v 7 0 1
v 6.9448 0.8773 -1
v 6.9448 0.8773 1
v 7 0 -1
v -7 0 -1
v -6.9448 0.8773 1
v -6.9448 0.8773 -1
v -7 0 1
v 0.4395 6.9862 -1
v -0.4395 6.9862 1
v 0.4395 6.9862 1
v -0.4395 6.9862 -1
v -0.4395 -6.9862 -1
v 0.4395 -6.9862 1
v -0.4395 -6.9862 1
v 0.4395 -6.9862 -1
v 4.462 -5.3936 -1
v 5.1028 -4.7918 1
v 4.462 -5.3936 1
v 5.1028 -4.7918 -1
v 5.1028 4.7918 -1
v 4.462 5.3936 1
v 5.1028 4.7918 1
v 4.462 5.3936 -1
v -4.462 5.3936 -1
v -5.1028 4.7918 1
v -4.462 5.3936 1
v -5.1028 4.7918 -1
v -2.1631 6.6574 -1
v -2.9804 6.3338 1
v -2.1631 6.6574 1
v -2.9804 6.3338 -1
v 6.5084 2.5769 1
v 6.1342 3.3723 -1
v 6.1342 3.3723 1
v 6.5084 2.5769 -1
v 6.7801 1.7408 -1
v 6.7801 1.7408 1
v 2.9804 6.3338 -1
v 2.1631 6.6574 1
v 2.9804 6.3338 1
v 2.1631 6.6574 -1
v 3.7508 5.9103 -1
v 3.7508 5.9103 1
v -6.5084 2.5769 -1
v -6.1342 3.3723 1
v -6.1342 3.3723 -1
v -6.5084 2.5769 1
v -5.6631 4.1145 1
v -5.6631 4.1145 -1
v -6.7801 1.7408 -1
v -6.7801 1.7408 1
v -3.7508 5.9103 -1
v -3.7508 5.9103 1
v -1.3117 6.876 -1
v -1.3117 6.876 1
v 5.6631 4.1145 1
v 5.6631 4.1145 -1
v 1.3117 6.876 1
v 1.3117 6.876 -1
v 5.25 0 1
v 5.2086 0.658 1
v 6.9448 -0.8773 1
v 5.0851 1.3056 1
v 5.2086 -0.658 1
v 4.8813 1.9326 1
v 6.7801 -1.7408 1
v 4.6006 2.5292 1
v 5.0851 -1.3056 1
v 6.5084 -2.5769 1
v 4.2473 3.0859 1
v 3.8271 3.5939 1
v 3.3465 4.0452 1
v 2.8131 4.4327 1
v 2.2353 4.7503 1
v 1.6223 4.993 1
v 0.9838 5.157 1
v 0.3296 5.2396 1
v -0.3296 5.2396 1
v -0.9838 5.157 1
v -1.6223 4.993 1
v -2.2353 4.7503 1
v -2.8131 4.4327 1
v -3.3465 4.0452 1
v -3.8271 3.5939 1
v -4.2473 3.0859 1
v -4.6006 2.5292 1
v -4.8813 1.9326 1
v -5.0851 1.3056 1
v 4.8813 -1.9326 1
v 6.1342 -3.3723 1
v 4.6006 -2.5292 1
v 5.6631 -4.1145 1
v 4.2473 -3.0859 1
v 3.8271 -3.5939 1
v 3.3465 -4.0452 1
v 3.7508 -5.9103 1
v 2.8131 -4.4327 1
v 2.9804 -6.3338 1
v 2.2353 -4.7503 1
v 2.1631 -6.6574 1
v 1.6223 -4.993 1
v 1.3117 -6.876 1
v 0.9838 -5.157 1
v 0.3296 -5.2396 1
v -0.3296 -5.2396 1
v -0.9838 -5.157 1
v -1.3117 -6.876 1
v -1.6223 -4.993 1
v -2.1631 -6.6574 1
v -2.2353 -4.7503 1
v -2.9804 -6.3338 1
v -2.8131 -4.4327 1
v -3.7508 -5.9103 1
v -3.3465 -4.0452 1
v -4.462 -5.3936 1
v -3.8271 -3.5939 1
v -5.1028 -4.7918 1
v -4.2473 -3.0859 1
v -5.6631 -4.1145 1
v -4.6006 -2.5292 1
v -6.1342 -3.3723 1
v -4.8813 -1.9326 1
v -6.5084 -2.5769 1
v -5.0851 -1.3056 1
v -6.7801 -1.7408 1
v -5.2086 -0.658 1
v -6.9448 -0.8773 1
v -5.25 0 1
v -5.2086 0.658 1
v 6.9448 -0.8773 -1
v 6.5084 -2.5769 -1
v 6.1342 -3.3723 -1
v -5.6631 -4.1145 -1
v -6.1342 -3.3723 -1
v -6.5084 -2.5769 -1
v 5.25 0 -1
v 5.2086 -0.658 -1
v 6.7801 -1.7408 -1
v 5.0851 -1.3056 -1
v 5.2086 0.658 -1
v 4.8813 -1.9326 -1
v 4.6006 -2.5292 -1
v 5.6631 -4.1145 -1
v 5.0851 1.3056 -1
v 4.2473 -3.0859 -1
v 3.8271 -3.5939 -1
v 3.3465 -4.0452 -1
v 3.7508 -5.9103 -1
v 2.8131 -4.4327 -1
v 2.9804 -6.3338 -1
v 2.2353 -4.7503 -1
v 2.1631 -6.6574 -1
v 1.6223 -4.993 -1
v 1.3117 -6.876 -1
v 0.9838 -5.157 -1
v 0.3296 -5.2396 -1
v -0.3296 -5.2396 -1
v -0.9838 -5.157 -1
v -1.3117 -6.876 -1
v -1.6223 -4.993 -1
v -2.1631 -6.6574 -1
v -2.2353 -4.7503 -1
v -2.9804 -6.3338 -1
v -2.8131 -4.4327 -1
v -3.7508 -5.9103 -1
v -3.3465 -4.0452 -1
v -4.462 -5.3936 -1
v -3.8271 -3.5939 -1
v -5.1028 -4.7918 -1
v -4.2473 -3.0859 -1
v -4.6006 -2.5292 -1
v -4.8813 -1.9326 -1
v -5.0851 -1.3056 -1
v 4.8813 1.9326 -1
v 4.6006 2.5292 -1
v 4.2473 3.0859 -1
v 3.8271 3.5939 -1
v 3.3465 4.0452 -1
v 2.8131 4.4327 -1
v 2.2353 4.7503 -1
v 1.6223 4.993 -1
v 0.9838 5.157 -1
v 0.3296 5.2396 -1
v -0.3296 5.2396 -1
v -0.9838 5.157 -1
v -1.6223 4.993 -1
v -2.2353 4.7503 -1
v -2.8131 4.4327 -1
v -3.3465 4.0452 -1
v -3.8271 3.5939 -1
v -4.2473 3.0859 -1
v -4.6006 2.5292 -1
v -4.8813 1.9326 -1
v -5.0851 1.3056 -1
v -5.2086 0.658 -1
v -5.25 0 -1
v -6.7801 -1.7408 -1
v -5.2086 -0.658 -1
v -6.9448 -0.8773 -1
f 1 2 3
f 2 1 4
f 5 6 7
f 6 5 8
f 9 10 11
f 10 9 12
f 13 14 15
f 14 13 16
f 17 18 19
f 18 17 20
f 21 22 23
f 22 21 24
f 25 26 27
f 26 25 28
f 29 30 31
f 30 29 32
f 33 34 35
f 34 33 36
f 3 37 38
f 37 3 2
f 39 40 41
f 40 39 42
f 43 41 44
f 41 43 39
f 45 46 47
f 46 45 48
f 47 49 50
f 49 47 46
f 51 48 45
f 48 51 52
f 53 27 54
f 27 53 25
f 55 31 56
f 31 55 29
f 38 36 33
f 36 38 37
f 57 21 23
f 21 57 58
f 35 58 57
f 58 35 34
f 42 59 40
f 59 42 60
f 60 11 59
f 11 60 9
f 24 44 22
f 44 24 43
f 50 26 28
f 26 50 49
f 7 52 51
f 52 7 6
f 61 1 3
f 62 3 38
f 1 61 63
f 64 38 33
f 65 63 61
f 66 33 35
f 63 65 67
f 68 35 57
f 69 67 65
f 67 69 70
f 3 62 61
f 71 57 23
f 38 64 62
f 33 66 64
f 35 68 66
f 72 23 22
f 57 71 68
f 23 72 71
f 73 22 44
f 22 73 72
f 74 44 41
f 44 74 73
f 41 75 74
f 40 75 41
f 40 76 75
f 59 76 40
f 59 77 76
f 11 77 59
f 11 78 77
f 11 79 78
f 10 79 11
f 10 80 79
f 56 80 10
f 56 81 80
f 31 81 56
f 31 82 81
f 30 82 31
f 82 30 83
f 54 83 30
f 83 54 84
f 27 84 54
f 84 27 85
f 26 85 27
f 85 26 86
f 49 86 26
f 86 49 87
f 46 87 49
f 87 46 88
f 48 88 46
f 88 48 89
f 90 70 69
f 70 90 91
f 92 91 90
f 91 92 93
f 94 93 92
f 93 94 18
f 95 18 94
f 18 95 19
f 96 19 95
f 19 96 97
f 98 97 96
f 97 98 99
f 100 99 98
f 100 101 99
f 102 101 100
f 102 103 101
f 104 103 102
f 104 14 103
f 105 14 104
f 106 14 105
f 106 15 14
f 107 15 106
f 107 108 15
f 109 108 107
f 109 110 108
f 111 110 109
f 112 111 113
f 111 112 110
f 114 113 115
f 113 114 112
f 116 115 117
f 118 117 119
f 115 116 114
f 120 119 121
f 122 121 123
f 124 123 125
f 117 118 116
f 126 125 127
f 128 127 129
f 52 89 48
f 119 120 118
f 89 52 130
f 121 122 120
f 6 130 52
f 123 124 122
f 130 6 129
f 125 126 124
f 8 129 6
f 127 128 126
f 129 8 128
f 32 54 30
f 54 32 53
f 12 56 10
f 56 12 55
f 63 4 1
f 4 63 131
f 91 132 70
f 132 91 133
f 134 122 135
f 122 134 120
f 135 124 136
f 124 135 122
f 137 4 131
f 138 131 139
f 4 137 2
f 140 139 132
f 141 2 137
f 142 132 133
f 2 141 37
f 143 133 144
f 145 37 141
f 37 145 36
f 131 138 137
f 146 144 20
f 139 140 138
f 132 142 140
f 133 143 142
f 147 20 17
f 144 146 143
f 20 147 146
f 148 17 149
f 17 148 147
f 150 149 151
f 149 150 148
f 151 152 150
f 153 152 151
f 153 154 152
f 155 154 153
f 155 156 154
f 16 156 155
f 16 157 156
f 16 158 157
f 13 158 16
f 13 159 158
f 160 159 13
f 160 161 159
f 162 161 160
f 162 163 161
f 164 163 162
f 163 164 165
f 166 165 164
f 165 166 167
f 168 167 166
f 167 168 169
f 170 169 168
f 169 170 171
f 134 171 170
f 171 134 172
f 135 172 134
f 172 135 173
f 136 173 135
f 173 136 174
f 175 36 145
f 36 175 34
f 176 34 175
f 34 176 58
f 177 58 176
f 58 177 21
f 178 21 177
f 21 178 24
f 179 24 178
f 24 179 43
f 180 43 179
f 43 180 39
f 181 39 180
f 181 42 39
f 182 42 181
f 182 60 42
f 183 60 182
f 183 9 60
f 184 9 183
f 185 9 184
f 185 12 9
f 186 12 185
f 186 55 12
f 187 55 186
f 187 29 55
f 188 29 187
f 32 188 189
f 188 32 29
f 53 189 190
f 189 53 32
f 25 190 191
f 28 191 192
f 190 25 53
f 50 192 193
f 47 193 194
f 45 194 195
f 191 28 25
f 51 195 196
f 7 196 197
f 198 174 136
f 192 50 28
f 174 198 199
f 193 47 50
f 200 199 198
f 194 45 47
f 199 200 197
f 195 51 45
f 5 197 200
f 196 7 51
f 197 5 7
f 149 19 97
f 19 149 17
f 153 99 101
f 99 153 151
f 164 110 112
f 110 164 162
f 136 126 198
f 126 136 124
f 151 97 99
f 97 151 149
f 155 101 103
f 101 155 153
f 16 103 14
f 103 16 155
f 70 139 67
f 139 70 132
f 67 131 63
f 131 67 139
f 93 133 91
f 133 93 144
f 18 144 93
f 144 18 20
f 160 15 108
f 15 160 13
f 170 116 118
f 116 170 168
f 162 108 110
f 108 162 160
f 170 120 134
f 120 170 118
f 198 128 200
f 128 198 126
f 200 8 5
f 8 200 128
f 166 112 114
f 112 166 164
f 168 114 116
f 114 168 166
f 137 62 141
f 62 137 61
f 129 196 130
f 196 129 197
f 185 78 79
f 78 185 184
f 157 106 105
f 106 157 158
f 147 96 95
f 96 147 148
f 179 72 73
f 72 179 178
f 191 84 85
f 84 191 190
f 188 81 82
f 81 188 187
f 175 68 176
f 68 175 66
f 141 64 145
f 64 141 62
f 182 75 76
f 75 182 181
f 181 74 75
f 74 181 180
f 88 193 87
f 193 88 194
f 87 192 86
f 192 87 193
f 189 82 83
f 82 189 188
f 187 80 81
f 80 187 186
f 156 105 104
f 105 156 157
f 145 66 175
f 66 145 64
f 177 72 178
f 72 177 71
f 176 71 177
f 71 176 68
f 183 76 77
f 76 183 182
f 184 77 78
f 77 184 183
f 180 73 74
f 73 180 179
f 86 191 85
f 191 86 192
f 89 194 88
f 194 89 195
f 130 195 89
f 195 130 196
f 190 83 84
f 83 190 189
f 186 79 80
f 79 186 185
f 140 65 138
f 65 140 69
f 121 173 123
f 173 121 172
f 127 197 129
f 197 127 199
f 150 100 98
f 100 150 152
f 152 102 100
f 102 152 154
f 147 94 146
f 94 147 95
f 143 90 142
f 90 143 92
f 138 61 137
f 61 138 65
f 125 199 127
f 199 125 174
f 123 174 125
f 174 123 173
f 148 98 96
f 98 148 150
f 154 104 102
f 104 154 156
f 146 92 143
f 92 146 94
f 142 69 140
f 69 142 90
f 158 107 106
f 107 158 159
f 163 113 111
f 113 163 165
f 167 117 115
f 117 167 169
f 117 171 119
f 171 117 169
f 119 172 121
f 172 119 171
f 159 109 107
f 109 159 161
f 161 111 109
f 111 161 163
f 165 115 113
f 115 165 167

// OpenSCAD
$fn = 50;


difference() {
	union() {
		translate(v = [0, 0, -1.0000000000]) {
			cylinder(h = 2, r = 7.0000000000);
		}
	}
	union() {
		translate(v = [0, 0, -100.0000000000]) {
			cylinder(h = 200, r = 5.2500000000);
		}
	}
}
